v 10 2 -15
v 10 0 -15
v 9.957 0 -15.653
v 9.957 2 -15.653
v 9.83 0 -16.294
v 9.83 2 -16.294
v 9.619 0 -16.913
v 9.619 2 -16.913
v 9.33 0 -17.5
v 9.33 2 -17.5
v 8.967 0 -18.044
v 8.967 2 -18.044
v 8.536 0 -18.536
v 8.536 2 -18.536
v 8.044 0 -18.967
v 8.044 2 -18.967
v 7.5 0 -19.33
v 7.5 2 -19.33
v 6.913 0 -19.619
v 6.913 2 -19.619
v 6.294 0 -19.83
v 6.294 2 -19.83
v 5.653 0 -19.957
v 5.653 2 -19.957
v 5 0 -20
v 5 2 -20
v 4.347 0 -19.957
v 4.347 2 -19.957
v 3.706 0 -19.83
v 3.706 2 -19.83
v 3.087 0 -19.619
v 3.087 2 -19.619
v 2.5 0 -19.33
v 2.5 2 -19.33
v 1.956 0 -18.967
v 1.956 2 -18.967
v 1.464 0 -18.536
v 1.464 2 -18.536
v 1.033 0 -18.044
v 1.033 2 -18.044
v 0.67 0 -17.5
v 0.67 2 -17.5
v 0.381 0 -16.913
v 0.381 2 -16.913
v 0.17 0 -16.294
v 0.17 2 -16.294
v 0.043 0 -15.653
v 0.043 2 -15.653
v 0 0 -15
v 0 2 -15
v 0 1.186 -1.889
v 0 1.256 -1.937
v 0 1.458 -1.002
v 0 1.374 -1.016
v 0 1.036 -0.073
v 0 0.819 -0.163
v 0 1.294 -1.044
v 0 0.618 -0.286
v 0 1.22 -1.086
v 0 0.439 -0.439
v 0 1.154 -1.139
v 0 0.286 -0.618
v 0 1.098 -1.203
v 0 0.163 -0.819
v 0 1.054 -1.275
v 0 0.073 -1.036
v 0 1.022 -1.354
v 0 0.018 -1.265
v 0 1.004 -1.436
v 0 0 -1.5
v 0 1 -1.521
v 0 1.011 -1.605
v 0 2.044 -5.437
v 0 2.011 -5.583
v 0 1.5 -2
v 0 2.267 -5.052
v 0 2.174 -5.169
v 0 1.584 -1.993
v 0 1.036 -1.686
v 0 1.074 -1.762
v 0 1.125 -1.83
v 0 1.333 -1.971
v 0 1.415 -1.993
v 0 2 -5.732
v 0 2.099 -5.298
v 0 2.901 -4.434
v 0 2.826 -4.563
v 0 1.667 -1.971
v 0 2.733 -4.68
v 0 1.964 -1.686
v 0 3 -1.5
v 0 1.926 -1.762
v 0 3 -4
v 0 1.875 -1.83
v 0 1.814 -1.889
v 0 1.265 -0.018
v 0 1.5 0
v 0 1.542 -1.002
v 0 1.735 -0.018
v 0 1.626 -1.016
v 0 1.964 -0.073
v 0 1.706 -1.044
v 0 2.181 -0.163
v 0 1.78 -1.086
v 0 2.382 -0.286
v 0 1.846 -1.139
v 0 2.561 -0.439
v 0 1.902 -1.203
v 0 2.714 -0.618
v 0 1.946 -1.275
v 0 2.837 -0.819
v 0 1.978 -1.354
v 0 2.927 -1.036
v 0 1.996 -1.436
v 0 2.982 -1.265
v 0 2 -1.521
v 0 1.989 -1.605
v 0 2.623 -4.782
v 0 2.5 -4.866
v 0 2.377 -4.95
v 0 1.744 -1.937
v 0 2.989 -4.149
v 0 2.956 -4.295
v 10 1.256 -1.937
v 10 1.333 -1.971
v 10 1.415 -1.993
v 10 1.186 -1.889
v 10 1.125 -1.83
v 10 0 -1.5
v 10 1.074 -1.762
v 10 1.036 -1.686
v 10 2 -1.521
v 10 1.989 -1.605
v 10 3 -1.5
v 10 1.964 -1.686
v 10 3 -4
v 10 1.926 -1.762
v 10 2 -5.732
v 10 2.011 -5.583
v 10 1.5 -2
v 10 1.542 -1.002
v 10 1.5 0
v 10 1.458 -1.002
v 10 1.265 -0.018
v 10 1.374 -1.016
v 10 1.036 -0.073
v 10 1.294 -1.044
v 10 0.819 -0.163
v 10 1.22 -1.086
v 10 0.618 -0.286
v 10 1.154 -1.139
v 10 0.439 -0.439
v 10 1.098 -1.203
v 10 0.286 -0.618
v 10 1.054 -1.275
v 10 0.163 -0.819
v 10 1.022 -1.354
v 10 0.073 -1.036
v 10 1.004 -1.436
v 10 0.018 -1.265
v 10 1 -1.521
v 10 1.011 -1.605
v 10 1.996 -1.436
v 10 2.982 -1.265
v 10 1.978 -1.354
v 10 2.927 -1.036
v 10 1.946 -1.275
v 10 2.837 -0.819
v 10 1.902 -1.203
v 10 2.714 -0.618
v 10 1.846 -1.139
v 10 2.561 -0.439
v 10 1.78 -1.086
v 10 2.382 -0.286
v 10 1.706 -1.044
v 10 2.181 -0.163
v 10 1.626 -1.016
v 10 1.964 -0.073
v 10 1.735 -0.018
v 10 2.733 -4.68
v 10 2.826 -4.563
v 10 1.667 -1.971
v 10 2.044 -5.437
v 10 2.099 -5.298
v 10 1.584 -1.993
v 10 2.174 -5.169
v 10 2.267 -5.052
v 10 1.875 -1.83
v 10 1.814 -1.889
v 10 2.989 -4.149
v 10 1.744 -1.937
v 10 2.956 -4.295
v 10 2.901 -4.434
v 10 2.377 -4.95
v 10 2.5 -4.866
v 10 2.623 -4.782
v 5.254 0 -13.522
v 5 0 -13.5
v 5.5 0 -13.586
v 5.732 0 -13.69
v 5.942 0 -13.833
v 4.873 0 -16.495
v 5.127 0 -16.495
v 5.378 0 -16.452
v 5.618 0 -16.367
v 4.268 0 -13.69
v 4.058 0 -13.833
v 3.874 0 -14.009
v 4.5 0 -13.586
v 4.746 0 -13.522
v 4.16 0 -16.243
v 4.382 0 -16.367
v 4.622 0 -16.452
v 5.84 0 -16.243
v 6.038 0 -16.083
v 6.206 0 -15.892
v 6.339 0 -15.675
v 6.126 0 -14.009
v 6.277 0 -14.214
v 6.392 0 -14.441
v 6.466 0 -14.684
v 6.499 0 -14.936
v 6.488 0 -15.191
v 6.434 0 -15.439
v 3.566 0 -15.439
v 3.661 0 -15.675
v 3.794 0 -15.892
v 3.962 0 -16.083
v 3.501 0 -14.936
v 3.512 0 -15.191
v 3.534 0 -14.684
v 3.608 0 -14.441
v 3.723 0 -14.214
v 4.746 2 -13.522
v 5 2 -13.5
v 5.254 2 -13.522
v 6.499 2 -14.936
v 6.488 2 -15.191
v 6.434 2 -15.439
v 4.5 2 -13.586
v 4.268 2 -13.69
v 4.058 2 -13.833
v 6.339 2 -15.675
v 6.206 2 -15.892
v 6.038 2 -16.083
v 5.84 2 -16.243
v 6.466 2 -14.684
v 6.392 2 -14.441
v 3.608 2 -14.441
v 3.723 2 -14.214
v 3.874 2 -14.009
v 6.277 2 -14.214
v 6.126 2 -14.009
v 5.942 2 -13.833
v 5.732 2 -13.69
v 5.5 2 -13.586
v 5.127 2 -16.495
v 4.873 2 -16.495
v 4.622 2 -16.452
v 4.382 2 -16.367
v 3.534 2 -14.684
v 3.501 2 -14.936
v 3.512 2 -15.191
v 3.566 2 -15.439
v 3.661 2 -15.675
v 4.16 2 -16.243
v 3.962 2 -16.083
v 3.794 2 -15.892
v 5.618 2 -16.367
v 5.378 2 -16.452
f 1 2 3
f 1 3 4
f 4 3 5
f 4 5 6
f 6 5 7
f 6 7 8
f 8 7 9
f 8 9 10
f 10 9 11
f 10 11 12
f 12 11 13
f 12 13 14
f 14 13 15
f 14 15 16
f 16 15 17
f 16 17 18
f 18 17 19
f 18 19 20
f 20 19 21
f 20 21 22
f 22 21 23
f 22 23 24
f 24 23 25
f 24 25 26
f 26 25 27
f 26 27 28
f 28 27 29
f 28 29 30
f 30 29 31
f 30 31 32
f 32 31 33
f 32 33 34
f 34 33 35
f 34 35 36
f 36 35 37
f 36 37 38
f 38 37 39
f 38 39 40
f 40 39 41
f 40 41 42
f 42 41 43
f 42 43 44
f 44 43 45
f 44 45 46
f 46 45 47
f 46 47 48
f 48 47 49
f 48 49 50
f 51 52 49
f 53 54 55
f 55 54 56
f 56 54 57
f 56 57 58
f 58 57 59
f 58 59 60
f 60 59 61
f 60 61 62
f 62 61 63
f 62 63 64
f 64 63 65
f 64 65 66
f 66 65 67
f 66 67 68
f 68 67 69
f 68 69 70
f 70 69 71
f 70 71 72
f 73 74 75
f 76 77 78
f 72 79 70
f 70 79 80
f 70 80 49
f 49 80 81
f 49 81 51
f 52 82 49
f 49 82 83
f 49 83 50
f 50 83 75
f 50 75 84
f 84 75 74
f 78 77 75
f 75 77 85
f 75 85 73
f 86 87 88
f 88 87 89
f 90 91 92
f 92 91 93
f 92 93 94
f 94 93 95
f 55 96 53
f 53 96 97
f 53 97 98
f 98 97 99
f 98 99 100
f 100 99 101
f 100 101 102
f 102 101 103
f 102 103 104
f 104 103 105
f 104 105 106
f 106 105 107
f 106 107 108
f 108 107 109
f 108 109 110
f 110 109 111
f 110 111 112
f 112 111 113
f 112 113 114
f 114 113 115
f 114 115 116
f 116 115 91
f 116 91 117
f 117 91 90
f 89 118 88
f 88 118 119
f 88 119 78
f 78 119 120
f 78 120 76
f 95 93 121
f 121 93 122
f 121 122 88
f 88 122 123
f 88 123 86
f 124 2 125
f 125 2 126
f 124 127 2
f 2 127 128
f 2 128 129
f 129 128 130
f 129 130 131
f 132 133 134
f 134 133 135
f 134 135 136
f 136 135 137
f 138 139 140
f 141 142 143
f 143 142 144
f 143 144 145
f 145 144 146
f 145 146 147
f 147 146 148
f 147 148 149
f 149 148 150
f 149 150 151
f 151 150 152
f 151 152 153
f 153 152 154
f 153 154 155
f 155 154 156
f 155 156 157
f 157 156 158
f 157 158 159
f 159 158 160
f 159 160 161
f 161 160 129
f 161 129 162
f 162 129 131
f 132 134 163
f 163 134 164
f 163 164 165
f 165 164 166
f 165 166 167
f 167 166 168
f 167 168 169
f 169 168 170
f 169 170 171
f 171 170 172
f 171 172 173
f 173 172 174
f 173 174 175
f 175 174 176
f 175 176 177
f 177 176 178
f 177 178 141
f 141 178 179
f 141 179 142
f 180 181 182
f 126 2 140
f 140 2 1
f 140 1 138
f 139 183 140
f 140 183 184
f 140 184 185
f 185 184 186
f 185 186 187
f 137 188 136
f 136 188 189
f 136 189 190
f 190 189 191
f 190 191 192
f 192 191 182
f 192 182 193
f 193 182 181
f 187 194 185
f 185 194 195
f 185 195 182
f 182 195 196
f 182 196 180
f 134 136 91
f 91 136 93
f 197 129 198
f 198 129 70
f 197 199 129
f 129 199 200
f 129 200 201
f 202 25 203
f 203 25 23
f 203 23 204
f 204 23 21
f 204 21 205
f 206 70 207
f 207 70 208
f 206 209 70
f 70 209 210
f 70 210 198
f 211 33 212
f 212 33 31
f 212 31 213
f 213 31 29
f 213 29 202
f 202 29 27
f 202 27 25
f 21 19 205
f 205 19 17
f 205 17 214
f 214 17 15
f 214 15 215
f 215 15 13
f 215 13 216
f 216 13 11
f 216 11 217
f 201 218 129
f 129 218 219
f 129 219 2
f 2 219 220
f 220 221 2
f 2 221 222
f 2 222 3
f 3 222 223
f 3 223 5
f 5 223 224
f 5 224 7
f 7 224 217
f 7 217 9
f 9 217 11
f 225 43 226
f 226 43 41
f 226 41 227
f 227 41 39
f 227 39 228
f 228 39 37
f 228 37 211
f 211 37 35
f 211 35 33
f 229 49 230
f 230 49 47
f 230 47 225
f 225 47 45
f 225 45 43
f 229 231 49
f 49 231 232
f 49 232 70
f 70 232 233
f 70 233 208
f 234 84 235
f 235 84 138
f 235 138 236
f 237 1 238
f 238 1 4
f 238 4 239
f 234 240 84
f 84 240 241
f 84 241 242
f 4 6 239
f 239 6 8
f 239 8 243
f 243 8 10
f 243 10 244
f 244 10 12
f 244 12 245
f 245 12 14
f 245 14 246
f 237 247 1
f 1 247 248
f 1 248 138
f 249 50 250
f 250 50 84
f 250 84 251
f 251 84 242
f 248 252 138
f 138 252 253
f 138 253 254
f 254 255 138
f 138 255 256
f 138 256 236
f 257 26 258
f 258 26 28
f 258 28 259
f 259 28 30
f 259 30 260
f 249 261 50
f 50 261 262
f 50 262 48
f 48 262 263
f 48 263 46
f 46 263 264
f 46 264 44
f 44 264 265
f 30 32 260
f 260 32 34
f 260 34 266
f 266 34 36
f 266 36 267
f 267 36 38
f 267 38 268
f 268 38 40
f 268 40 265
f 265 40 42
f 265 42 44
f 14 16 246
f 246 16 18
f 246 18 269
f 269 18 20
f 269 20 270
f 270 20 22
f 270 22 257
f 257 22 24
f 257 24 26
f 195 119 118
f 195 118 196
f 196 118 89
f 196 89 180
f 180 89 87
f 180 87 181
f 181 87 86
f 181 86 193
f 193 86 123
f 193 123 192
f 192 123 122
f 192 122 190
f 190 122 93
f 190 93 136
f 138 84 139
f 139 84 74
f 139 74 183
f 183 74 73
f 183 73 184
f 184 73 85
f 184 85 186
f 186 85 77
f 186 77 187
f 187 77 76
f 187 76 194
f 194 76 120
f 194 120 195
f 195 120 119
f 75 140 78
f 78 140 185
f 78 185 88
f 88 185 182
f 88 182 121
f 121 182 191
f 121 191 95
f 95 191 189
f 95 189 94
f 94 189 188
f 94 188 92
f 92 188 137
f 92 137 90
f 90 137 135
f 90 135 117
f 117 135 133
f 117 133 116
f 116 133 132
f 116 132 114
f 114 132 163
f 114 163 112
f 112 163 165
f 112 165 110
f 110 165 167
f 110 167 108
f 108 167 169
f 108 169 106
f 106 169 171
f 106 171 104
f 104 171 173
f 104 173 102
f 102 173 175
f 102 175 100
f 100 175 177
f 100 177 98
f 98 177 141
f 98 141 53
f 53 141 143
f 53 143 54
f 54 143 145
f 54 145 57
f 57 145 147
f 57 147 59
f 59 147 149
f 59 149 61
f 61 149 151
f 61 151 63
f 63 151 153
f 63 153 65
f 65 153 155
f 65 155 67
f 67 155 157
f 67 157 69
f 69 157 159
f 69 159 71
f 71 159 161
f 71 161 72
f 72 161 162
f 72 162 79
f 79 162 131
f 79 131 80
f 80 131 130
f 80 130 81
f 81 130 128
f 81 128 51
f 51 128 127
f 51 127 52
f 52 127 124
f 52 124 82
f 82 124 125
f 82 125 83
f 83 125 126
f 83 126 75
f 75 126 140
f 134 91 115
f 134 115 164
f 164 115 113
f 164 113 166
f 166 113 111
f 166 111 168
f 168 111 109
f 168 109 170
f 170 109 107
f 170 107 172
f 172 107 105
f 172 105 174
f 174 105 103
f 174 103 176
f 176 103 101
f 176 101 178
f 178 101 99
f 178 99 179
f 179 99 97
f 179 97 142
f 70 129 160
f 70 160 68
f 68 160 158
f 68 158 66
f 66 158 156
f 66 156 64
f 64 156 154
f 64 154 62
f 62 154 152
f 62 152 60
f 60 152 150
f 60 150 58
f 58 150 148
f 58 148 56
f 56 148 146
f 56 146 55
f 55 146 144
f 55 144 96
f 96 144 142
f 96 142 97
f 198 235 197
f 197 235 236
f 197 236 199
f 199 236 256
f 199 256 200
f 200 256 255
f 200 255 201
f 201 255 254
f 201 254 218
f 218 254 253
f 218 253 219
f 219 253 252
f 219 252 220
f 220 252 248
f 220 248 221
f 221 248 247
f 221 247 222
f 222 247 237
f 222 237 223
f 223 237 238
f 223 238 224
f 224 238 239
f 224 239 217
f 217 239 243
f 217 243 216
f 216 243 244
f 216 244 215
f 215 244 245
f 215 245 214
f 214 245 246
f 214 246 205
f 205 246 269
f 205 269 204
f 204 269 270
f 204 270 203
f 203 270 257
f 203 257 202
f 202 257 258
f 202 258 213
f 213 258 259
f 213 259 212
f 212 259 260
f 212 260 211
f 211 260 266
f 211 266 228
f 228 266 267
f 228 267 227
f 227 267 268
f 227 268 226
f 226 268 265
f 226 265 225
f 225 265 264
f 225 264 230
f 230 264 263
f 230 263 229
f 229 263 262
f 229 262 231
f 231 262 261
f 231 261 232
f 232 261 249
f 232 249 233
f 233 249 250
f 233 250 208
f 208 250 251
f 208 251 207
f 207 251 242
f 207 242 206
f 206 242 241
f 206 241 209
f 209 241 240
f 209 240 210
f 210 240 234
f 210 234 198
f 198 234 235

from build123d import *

# Parameters (mm, degrees)
SALIENTE_EXTRUIR1_DEPTH = 3
CROQUIS3_W              = 15
CROQUIS3_H              = 1
CORTAR_EXTRUIR1_DEPTH   = 10
REDONDEO1_R             = 1
REDONDEO3_R             = 1
CROQUIS4_R              = 0.5
CORTAR_EXTRUIR2_DEPTH   = 10
REDONDEO4_R             = 1.5
REDONDEO5_R             = 1.5
CROQUIS5_R              = 1.5
CORTAR_EXTRUIR3_DEPTH   = 3


with BuildPart() as part:
    # Croquis1 → Saliente-Extruir1 (new body)
    with BuildSketch(Plane(origin=(0, 0, 0), x_dir=(1, 0, 0), z_dir=(0, 1, 0))):
        with BuildLine():
            Line((0, 0), (10, 0))
            Line((10, 0), (10, 15))
            ThreePointArc((10, 15), (5, 20), (0, 15))
            Line((0, 15), (0, 0))
        make_face()
    extrude(amount=SALIENTE_EXTRUIR1_DEPTH)

    # Croquis3 → Cortar-Extruir1 (cut)
    with BuildSketch(Plane(origin=(0, 0, 0), x_dir=(0, 0, -1), z_dir=(1, 0, 0))):
        with Locations((12.5, 2.5)):
            Rectangle(CROQUIS3_W, CROQUIS3_H)
    extrude(amount=CORTAR_EXTRUIR1_DEPTH, mode=Mode.SUBTRACT)

    # Redondeo1
    redondeo1_edges = [part.edges().sort_by_distance(p)[0] for p in [
        (5, 3, -5),
    ]]
    fillet(redondeo1_edges, radius=REDONDEO1_R - 0.0001)  # a hair under: the kernel refuses the full size

    # Redondeo3
    redondeo3_edges = [part.edges().sort_by_distance(p)[0] for p in [
        (5, 2, -5),
    ]]
    fillet(redondeo3_edges, radius=REDONDEO3_R)

    # Croquis4 → Cortar-Extruir2 (cut)
    with BuildSketch(Plane(origin=(10, 0, 0), x_dir=(0, 0, -1), z_dir=(1, 0, 0))):
        with Locations((1.5, 1.5)):
            Circle(CROQUIS4_R)
    extrude(amount=-CORTAR_EXTRUIR2_DEPTH, mode=Mode.SUBTRACT)

    # Redondeo4
    redondeo4_edges = [part.edges().sort_by_distance(p)[0] for p in [
        (5, 3, 0),
    ]]
    fillet(redondeo4_edges, radius=REDONDEO4_R)

    # Redondeo5
    redondeo5_edges = [part.edges().sort_by_distance(p)[0] for p in [
        (5, 0, 0),
    ]]
    fillet(redondeo5_edges, radius=REDONDEO5_R - 0.0001)  # a hair under: the kernel refuses the full size

    # Croquis5 → Cortar-Extruir3 (cut)
    with BuildSketch(Plane(origin=(0, 2, 0), x_dir=(1, 0, 0), z_dir=(0, 1, 0))):
        with Locations(Location((5, 15, 0), (0, 0, 270))):
            Circle(CROQUIS5_R)
    extrude(amount=-CORTAR_EXTRUIR3_DEPTH, mode=Mode.SUBTRACT)


solid = part.part
